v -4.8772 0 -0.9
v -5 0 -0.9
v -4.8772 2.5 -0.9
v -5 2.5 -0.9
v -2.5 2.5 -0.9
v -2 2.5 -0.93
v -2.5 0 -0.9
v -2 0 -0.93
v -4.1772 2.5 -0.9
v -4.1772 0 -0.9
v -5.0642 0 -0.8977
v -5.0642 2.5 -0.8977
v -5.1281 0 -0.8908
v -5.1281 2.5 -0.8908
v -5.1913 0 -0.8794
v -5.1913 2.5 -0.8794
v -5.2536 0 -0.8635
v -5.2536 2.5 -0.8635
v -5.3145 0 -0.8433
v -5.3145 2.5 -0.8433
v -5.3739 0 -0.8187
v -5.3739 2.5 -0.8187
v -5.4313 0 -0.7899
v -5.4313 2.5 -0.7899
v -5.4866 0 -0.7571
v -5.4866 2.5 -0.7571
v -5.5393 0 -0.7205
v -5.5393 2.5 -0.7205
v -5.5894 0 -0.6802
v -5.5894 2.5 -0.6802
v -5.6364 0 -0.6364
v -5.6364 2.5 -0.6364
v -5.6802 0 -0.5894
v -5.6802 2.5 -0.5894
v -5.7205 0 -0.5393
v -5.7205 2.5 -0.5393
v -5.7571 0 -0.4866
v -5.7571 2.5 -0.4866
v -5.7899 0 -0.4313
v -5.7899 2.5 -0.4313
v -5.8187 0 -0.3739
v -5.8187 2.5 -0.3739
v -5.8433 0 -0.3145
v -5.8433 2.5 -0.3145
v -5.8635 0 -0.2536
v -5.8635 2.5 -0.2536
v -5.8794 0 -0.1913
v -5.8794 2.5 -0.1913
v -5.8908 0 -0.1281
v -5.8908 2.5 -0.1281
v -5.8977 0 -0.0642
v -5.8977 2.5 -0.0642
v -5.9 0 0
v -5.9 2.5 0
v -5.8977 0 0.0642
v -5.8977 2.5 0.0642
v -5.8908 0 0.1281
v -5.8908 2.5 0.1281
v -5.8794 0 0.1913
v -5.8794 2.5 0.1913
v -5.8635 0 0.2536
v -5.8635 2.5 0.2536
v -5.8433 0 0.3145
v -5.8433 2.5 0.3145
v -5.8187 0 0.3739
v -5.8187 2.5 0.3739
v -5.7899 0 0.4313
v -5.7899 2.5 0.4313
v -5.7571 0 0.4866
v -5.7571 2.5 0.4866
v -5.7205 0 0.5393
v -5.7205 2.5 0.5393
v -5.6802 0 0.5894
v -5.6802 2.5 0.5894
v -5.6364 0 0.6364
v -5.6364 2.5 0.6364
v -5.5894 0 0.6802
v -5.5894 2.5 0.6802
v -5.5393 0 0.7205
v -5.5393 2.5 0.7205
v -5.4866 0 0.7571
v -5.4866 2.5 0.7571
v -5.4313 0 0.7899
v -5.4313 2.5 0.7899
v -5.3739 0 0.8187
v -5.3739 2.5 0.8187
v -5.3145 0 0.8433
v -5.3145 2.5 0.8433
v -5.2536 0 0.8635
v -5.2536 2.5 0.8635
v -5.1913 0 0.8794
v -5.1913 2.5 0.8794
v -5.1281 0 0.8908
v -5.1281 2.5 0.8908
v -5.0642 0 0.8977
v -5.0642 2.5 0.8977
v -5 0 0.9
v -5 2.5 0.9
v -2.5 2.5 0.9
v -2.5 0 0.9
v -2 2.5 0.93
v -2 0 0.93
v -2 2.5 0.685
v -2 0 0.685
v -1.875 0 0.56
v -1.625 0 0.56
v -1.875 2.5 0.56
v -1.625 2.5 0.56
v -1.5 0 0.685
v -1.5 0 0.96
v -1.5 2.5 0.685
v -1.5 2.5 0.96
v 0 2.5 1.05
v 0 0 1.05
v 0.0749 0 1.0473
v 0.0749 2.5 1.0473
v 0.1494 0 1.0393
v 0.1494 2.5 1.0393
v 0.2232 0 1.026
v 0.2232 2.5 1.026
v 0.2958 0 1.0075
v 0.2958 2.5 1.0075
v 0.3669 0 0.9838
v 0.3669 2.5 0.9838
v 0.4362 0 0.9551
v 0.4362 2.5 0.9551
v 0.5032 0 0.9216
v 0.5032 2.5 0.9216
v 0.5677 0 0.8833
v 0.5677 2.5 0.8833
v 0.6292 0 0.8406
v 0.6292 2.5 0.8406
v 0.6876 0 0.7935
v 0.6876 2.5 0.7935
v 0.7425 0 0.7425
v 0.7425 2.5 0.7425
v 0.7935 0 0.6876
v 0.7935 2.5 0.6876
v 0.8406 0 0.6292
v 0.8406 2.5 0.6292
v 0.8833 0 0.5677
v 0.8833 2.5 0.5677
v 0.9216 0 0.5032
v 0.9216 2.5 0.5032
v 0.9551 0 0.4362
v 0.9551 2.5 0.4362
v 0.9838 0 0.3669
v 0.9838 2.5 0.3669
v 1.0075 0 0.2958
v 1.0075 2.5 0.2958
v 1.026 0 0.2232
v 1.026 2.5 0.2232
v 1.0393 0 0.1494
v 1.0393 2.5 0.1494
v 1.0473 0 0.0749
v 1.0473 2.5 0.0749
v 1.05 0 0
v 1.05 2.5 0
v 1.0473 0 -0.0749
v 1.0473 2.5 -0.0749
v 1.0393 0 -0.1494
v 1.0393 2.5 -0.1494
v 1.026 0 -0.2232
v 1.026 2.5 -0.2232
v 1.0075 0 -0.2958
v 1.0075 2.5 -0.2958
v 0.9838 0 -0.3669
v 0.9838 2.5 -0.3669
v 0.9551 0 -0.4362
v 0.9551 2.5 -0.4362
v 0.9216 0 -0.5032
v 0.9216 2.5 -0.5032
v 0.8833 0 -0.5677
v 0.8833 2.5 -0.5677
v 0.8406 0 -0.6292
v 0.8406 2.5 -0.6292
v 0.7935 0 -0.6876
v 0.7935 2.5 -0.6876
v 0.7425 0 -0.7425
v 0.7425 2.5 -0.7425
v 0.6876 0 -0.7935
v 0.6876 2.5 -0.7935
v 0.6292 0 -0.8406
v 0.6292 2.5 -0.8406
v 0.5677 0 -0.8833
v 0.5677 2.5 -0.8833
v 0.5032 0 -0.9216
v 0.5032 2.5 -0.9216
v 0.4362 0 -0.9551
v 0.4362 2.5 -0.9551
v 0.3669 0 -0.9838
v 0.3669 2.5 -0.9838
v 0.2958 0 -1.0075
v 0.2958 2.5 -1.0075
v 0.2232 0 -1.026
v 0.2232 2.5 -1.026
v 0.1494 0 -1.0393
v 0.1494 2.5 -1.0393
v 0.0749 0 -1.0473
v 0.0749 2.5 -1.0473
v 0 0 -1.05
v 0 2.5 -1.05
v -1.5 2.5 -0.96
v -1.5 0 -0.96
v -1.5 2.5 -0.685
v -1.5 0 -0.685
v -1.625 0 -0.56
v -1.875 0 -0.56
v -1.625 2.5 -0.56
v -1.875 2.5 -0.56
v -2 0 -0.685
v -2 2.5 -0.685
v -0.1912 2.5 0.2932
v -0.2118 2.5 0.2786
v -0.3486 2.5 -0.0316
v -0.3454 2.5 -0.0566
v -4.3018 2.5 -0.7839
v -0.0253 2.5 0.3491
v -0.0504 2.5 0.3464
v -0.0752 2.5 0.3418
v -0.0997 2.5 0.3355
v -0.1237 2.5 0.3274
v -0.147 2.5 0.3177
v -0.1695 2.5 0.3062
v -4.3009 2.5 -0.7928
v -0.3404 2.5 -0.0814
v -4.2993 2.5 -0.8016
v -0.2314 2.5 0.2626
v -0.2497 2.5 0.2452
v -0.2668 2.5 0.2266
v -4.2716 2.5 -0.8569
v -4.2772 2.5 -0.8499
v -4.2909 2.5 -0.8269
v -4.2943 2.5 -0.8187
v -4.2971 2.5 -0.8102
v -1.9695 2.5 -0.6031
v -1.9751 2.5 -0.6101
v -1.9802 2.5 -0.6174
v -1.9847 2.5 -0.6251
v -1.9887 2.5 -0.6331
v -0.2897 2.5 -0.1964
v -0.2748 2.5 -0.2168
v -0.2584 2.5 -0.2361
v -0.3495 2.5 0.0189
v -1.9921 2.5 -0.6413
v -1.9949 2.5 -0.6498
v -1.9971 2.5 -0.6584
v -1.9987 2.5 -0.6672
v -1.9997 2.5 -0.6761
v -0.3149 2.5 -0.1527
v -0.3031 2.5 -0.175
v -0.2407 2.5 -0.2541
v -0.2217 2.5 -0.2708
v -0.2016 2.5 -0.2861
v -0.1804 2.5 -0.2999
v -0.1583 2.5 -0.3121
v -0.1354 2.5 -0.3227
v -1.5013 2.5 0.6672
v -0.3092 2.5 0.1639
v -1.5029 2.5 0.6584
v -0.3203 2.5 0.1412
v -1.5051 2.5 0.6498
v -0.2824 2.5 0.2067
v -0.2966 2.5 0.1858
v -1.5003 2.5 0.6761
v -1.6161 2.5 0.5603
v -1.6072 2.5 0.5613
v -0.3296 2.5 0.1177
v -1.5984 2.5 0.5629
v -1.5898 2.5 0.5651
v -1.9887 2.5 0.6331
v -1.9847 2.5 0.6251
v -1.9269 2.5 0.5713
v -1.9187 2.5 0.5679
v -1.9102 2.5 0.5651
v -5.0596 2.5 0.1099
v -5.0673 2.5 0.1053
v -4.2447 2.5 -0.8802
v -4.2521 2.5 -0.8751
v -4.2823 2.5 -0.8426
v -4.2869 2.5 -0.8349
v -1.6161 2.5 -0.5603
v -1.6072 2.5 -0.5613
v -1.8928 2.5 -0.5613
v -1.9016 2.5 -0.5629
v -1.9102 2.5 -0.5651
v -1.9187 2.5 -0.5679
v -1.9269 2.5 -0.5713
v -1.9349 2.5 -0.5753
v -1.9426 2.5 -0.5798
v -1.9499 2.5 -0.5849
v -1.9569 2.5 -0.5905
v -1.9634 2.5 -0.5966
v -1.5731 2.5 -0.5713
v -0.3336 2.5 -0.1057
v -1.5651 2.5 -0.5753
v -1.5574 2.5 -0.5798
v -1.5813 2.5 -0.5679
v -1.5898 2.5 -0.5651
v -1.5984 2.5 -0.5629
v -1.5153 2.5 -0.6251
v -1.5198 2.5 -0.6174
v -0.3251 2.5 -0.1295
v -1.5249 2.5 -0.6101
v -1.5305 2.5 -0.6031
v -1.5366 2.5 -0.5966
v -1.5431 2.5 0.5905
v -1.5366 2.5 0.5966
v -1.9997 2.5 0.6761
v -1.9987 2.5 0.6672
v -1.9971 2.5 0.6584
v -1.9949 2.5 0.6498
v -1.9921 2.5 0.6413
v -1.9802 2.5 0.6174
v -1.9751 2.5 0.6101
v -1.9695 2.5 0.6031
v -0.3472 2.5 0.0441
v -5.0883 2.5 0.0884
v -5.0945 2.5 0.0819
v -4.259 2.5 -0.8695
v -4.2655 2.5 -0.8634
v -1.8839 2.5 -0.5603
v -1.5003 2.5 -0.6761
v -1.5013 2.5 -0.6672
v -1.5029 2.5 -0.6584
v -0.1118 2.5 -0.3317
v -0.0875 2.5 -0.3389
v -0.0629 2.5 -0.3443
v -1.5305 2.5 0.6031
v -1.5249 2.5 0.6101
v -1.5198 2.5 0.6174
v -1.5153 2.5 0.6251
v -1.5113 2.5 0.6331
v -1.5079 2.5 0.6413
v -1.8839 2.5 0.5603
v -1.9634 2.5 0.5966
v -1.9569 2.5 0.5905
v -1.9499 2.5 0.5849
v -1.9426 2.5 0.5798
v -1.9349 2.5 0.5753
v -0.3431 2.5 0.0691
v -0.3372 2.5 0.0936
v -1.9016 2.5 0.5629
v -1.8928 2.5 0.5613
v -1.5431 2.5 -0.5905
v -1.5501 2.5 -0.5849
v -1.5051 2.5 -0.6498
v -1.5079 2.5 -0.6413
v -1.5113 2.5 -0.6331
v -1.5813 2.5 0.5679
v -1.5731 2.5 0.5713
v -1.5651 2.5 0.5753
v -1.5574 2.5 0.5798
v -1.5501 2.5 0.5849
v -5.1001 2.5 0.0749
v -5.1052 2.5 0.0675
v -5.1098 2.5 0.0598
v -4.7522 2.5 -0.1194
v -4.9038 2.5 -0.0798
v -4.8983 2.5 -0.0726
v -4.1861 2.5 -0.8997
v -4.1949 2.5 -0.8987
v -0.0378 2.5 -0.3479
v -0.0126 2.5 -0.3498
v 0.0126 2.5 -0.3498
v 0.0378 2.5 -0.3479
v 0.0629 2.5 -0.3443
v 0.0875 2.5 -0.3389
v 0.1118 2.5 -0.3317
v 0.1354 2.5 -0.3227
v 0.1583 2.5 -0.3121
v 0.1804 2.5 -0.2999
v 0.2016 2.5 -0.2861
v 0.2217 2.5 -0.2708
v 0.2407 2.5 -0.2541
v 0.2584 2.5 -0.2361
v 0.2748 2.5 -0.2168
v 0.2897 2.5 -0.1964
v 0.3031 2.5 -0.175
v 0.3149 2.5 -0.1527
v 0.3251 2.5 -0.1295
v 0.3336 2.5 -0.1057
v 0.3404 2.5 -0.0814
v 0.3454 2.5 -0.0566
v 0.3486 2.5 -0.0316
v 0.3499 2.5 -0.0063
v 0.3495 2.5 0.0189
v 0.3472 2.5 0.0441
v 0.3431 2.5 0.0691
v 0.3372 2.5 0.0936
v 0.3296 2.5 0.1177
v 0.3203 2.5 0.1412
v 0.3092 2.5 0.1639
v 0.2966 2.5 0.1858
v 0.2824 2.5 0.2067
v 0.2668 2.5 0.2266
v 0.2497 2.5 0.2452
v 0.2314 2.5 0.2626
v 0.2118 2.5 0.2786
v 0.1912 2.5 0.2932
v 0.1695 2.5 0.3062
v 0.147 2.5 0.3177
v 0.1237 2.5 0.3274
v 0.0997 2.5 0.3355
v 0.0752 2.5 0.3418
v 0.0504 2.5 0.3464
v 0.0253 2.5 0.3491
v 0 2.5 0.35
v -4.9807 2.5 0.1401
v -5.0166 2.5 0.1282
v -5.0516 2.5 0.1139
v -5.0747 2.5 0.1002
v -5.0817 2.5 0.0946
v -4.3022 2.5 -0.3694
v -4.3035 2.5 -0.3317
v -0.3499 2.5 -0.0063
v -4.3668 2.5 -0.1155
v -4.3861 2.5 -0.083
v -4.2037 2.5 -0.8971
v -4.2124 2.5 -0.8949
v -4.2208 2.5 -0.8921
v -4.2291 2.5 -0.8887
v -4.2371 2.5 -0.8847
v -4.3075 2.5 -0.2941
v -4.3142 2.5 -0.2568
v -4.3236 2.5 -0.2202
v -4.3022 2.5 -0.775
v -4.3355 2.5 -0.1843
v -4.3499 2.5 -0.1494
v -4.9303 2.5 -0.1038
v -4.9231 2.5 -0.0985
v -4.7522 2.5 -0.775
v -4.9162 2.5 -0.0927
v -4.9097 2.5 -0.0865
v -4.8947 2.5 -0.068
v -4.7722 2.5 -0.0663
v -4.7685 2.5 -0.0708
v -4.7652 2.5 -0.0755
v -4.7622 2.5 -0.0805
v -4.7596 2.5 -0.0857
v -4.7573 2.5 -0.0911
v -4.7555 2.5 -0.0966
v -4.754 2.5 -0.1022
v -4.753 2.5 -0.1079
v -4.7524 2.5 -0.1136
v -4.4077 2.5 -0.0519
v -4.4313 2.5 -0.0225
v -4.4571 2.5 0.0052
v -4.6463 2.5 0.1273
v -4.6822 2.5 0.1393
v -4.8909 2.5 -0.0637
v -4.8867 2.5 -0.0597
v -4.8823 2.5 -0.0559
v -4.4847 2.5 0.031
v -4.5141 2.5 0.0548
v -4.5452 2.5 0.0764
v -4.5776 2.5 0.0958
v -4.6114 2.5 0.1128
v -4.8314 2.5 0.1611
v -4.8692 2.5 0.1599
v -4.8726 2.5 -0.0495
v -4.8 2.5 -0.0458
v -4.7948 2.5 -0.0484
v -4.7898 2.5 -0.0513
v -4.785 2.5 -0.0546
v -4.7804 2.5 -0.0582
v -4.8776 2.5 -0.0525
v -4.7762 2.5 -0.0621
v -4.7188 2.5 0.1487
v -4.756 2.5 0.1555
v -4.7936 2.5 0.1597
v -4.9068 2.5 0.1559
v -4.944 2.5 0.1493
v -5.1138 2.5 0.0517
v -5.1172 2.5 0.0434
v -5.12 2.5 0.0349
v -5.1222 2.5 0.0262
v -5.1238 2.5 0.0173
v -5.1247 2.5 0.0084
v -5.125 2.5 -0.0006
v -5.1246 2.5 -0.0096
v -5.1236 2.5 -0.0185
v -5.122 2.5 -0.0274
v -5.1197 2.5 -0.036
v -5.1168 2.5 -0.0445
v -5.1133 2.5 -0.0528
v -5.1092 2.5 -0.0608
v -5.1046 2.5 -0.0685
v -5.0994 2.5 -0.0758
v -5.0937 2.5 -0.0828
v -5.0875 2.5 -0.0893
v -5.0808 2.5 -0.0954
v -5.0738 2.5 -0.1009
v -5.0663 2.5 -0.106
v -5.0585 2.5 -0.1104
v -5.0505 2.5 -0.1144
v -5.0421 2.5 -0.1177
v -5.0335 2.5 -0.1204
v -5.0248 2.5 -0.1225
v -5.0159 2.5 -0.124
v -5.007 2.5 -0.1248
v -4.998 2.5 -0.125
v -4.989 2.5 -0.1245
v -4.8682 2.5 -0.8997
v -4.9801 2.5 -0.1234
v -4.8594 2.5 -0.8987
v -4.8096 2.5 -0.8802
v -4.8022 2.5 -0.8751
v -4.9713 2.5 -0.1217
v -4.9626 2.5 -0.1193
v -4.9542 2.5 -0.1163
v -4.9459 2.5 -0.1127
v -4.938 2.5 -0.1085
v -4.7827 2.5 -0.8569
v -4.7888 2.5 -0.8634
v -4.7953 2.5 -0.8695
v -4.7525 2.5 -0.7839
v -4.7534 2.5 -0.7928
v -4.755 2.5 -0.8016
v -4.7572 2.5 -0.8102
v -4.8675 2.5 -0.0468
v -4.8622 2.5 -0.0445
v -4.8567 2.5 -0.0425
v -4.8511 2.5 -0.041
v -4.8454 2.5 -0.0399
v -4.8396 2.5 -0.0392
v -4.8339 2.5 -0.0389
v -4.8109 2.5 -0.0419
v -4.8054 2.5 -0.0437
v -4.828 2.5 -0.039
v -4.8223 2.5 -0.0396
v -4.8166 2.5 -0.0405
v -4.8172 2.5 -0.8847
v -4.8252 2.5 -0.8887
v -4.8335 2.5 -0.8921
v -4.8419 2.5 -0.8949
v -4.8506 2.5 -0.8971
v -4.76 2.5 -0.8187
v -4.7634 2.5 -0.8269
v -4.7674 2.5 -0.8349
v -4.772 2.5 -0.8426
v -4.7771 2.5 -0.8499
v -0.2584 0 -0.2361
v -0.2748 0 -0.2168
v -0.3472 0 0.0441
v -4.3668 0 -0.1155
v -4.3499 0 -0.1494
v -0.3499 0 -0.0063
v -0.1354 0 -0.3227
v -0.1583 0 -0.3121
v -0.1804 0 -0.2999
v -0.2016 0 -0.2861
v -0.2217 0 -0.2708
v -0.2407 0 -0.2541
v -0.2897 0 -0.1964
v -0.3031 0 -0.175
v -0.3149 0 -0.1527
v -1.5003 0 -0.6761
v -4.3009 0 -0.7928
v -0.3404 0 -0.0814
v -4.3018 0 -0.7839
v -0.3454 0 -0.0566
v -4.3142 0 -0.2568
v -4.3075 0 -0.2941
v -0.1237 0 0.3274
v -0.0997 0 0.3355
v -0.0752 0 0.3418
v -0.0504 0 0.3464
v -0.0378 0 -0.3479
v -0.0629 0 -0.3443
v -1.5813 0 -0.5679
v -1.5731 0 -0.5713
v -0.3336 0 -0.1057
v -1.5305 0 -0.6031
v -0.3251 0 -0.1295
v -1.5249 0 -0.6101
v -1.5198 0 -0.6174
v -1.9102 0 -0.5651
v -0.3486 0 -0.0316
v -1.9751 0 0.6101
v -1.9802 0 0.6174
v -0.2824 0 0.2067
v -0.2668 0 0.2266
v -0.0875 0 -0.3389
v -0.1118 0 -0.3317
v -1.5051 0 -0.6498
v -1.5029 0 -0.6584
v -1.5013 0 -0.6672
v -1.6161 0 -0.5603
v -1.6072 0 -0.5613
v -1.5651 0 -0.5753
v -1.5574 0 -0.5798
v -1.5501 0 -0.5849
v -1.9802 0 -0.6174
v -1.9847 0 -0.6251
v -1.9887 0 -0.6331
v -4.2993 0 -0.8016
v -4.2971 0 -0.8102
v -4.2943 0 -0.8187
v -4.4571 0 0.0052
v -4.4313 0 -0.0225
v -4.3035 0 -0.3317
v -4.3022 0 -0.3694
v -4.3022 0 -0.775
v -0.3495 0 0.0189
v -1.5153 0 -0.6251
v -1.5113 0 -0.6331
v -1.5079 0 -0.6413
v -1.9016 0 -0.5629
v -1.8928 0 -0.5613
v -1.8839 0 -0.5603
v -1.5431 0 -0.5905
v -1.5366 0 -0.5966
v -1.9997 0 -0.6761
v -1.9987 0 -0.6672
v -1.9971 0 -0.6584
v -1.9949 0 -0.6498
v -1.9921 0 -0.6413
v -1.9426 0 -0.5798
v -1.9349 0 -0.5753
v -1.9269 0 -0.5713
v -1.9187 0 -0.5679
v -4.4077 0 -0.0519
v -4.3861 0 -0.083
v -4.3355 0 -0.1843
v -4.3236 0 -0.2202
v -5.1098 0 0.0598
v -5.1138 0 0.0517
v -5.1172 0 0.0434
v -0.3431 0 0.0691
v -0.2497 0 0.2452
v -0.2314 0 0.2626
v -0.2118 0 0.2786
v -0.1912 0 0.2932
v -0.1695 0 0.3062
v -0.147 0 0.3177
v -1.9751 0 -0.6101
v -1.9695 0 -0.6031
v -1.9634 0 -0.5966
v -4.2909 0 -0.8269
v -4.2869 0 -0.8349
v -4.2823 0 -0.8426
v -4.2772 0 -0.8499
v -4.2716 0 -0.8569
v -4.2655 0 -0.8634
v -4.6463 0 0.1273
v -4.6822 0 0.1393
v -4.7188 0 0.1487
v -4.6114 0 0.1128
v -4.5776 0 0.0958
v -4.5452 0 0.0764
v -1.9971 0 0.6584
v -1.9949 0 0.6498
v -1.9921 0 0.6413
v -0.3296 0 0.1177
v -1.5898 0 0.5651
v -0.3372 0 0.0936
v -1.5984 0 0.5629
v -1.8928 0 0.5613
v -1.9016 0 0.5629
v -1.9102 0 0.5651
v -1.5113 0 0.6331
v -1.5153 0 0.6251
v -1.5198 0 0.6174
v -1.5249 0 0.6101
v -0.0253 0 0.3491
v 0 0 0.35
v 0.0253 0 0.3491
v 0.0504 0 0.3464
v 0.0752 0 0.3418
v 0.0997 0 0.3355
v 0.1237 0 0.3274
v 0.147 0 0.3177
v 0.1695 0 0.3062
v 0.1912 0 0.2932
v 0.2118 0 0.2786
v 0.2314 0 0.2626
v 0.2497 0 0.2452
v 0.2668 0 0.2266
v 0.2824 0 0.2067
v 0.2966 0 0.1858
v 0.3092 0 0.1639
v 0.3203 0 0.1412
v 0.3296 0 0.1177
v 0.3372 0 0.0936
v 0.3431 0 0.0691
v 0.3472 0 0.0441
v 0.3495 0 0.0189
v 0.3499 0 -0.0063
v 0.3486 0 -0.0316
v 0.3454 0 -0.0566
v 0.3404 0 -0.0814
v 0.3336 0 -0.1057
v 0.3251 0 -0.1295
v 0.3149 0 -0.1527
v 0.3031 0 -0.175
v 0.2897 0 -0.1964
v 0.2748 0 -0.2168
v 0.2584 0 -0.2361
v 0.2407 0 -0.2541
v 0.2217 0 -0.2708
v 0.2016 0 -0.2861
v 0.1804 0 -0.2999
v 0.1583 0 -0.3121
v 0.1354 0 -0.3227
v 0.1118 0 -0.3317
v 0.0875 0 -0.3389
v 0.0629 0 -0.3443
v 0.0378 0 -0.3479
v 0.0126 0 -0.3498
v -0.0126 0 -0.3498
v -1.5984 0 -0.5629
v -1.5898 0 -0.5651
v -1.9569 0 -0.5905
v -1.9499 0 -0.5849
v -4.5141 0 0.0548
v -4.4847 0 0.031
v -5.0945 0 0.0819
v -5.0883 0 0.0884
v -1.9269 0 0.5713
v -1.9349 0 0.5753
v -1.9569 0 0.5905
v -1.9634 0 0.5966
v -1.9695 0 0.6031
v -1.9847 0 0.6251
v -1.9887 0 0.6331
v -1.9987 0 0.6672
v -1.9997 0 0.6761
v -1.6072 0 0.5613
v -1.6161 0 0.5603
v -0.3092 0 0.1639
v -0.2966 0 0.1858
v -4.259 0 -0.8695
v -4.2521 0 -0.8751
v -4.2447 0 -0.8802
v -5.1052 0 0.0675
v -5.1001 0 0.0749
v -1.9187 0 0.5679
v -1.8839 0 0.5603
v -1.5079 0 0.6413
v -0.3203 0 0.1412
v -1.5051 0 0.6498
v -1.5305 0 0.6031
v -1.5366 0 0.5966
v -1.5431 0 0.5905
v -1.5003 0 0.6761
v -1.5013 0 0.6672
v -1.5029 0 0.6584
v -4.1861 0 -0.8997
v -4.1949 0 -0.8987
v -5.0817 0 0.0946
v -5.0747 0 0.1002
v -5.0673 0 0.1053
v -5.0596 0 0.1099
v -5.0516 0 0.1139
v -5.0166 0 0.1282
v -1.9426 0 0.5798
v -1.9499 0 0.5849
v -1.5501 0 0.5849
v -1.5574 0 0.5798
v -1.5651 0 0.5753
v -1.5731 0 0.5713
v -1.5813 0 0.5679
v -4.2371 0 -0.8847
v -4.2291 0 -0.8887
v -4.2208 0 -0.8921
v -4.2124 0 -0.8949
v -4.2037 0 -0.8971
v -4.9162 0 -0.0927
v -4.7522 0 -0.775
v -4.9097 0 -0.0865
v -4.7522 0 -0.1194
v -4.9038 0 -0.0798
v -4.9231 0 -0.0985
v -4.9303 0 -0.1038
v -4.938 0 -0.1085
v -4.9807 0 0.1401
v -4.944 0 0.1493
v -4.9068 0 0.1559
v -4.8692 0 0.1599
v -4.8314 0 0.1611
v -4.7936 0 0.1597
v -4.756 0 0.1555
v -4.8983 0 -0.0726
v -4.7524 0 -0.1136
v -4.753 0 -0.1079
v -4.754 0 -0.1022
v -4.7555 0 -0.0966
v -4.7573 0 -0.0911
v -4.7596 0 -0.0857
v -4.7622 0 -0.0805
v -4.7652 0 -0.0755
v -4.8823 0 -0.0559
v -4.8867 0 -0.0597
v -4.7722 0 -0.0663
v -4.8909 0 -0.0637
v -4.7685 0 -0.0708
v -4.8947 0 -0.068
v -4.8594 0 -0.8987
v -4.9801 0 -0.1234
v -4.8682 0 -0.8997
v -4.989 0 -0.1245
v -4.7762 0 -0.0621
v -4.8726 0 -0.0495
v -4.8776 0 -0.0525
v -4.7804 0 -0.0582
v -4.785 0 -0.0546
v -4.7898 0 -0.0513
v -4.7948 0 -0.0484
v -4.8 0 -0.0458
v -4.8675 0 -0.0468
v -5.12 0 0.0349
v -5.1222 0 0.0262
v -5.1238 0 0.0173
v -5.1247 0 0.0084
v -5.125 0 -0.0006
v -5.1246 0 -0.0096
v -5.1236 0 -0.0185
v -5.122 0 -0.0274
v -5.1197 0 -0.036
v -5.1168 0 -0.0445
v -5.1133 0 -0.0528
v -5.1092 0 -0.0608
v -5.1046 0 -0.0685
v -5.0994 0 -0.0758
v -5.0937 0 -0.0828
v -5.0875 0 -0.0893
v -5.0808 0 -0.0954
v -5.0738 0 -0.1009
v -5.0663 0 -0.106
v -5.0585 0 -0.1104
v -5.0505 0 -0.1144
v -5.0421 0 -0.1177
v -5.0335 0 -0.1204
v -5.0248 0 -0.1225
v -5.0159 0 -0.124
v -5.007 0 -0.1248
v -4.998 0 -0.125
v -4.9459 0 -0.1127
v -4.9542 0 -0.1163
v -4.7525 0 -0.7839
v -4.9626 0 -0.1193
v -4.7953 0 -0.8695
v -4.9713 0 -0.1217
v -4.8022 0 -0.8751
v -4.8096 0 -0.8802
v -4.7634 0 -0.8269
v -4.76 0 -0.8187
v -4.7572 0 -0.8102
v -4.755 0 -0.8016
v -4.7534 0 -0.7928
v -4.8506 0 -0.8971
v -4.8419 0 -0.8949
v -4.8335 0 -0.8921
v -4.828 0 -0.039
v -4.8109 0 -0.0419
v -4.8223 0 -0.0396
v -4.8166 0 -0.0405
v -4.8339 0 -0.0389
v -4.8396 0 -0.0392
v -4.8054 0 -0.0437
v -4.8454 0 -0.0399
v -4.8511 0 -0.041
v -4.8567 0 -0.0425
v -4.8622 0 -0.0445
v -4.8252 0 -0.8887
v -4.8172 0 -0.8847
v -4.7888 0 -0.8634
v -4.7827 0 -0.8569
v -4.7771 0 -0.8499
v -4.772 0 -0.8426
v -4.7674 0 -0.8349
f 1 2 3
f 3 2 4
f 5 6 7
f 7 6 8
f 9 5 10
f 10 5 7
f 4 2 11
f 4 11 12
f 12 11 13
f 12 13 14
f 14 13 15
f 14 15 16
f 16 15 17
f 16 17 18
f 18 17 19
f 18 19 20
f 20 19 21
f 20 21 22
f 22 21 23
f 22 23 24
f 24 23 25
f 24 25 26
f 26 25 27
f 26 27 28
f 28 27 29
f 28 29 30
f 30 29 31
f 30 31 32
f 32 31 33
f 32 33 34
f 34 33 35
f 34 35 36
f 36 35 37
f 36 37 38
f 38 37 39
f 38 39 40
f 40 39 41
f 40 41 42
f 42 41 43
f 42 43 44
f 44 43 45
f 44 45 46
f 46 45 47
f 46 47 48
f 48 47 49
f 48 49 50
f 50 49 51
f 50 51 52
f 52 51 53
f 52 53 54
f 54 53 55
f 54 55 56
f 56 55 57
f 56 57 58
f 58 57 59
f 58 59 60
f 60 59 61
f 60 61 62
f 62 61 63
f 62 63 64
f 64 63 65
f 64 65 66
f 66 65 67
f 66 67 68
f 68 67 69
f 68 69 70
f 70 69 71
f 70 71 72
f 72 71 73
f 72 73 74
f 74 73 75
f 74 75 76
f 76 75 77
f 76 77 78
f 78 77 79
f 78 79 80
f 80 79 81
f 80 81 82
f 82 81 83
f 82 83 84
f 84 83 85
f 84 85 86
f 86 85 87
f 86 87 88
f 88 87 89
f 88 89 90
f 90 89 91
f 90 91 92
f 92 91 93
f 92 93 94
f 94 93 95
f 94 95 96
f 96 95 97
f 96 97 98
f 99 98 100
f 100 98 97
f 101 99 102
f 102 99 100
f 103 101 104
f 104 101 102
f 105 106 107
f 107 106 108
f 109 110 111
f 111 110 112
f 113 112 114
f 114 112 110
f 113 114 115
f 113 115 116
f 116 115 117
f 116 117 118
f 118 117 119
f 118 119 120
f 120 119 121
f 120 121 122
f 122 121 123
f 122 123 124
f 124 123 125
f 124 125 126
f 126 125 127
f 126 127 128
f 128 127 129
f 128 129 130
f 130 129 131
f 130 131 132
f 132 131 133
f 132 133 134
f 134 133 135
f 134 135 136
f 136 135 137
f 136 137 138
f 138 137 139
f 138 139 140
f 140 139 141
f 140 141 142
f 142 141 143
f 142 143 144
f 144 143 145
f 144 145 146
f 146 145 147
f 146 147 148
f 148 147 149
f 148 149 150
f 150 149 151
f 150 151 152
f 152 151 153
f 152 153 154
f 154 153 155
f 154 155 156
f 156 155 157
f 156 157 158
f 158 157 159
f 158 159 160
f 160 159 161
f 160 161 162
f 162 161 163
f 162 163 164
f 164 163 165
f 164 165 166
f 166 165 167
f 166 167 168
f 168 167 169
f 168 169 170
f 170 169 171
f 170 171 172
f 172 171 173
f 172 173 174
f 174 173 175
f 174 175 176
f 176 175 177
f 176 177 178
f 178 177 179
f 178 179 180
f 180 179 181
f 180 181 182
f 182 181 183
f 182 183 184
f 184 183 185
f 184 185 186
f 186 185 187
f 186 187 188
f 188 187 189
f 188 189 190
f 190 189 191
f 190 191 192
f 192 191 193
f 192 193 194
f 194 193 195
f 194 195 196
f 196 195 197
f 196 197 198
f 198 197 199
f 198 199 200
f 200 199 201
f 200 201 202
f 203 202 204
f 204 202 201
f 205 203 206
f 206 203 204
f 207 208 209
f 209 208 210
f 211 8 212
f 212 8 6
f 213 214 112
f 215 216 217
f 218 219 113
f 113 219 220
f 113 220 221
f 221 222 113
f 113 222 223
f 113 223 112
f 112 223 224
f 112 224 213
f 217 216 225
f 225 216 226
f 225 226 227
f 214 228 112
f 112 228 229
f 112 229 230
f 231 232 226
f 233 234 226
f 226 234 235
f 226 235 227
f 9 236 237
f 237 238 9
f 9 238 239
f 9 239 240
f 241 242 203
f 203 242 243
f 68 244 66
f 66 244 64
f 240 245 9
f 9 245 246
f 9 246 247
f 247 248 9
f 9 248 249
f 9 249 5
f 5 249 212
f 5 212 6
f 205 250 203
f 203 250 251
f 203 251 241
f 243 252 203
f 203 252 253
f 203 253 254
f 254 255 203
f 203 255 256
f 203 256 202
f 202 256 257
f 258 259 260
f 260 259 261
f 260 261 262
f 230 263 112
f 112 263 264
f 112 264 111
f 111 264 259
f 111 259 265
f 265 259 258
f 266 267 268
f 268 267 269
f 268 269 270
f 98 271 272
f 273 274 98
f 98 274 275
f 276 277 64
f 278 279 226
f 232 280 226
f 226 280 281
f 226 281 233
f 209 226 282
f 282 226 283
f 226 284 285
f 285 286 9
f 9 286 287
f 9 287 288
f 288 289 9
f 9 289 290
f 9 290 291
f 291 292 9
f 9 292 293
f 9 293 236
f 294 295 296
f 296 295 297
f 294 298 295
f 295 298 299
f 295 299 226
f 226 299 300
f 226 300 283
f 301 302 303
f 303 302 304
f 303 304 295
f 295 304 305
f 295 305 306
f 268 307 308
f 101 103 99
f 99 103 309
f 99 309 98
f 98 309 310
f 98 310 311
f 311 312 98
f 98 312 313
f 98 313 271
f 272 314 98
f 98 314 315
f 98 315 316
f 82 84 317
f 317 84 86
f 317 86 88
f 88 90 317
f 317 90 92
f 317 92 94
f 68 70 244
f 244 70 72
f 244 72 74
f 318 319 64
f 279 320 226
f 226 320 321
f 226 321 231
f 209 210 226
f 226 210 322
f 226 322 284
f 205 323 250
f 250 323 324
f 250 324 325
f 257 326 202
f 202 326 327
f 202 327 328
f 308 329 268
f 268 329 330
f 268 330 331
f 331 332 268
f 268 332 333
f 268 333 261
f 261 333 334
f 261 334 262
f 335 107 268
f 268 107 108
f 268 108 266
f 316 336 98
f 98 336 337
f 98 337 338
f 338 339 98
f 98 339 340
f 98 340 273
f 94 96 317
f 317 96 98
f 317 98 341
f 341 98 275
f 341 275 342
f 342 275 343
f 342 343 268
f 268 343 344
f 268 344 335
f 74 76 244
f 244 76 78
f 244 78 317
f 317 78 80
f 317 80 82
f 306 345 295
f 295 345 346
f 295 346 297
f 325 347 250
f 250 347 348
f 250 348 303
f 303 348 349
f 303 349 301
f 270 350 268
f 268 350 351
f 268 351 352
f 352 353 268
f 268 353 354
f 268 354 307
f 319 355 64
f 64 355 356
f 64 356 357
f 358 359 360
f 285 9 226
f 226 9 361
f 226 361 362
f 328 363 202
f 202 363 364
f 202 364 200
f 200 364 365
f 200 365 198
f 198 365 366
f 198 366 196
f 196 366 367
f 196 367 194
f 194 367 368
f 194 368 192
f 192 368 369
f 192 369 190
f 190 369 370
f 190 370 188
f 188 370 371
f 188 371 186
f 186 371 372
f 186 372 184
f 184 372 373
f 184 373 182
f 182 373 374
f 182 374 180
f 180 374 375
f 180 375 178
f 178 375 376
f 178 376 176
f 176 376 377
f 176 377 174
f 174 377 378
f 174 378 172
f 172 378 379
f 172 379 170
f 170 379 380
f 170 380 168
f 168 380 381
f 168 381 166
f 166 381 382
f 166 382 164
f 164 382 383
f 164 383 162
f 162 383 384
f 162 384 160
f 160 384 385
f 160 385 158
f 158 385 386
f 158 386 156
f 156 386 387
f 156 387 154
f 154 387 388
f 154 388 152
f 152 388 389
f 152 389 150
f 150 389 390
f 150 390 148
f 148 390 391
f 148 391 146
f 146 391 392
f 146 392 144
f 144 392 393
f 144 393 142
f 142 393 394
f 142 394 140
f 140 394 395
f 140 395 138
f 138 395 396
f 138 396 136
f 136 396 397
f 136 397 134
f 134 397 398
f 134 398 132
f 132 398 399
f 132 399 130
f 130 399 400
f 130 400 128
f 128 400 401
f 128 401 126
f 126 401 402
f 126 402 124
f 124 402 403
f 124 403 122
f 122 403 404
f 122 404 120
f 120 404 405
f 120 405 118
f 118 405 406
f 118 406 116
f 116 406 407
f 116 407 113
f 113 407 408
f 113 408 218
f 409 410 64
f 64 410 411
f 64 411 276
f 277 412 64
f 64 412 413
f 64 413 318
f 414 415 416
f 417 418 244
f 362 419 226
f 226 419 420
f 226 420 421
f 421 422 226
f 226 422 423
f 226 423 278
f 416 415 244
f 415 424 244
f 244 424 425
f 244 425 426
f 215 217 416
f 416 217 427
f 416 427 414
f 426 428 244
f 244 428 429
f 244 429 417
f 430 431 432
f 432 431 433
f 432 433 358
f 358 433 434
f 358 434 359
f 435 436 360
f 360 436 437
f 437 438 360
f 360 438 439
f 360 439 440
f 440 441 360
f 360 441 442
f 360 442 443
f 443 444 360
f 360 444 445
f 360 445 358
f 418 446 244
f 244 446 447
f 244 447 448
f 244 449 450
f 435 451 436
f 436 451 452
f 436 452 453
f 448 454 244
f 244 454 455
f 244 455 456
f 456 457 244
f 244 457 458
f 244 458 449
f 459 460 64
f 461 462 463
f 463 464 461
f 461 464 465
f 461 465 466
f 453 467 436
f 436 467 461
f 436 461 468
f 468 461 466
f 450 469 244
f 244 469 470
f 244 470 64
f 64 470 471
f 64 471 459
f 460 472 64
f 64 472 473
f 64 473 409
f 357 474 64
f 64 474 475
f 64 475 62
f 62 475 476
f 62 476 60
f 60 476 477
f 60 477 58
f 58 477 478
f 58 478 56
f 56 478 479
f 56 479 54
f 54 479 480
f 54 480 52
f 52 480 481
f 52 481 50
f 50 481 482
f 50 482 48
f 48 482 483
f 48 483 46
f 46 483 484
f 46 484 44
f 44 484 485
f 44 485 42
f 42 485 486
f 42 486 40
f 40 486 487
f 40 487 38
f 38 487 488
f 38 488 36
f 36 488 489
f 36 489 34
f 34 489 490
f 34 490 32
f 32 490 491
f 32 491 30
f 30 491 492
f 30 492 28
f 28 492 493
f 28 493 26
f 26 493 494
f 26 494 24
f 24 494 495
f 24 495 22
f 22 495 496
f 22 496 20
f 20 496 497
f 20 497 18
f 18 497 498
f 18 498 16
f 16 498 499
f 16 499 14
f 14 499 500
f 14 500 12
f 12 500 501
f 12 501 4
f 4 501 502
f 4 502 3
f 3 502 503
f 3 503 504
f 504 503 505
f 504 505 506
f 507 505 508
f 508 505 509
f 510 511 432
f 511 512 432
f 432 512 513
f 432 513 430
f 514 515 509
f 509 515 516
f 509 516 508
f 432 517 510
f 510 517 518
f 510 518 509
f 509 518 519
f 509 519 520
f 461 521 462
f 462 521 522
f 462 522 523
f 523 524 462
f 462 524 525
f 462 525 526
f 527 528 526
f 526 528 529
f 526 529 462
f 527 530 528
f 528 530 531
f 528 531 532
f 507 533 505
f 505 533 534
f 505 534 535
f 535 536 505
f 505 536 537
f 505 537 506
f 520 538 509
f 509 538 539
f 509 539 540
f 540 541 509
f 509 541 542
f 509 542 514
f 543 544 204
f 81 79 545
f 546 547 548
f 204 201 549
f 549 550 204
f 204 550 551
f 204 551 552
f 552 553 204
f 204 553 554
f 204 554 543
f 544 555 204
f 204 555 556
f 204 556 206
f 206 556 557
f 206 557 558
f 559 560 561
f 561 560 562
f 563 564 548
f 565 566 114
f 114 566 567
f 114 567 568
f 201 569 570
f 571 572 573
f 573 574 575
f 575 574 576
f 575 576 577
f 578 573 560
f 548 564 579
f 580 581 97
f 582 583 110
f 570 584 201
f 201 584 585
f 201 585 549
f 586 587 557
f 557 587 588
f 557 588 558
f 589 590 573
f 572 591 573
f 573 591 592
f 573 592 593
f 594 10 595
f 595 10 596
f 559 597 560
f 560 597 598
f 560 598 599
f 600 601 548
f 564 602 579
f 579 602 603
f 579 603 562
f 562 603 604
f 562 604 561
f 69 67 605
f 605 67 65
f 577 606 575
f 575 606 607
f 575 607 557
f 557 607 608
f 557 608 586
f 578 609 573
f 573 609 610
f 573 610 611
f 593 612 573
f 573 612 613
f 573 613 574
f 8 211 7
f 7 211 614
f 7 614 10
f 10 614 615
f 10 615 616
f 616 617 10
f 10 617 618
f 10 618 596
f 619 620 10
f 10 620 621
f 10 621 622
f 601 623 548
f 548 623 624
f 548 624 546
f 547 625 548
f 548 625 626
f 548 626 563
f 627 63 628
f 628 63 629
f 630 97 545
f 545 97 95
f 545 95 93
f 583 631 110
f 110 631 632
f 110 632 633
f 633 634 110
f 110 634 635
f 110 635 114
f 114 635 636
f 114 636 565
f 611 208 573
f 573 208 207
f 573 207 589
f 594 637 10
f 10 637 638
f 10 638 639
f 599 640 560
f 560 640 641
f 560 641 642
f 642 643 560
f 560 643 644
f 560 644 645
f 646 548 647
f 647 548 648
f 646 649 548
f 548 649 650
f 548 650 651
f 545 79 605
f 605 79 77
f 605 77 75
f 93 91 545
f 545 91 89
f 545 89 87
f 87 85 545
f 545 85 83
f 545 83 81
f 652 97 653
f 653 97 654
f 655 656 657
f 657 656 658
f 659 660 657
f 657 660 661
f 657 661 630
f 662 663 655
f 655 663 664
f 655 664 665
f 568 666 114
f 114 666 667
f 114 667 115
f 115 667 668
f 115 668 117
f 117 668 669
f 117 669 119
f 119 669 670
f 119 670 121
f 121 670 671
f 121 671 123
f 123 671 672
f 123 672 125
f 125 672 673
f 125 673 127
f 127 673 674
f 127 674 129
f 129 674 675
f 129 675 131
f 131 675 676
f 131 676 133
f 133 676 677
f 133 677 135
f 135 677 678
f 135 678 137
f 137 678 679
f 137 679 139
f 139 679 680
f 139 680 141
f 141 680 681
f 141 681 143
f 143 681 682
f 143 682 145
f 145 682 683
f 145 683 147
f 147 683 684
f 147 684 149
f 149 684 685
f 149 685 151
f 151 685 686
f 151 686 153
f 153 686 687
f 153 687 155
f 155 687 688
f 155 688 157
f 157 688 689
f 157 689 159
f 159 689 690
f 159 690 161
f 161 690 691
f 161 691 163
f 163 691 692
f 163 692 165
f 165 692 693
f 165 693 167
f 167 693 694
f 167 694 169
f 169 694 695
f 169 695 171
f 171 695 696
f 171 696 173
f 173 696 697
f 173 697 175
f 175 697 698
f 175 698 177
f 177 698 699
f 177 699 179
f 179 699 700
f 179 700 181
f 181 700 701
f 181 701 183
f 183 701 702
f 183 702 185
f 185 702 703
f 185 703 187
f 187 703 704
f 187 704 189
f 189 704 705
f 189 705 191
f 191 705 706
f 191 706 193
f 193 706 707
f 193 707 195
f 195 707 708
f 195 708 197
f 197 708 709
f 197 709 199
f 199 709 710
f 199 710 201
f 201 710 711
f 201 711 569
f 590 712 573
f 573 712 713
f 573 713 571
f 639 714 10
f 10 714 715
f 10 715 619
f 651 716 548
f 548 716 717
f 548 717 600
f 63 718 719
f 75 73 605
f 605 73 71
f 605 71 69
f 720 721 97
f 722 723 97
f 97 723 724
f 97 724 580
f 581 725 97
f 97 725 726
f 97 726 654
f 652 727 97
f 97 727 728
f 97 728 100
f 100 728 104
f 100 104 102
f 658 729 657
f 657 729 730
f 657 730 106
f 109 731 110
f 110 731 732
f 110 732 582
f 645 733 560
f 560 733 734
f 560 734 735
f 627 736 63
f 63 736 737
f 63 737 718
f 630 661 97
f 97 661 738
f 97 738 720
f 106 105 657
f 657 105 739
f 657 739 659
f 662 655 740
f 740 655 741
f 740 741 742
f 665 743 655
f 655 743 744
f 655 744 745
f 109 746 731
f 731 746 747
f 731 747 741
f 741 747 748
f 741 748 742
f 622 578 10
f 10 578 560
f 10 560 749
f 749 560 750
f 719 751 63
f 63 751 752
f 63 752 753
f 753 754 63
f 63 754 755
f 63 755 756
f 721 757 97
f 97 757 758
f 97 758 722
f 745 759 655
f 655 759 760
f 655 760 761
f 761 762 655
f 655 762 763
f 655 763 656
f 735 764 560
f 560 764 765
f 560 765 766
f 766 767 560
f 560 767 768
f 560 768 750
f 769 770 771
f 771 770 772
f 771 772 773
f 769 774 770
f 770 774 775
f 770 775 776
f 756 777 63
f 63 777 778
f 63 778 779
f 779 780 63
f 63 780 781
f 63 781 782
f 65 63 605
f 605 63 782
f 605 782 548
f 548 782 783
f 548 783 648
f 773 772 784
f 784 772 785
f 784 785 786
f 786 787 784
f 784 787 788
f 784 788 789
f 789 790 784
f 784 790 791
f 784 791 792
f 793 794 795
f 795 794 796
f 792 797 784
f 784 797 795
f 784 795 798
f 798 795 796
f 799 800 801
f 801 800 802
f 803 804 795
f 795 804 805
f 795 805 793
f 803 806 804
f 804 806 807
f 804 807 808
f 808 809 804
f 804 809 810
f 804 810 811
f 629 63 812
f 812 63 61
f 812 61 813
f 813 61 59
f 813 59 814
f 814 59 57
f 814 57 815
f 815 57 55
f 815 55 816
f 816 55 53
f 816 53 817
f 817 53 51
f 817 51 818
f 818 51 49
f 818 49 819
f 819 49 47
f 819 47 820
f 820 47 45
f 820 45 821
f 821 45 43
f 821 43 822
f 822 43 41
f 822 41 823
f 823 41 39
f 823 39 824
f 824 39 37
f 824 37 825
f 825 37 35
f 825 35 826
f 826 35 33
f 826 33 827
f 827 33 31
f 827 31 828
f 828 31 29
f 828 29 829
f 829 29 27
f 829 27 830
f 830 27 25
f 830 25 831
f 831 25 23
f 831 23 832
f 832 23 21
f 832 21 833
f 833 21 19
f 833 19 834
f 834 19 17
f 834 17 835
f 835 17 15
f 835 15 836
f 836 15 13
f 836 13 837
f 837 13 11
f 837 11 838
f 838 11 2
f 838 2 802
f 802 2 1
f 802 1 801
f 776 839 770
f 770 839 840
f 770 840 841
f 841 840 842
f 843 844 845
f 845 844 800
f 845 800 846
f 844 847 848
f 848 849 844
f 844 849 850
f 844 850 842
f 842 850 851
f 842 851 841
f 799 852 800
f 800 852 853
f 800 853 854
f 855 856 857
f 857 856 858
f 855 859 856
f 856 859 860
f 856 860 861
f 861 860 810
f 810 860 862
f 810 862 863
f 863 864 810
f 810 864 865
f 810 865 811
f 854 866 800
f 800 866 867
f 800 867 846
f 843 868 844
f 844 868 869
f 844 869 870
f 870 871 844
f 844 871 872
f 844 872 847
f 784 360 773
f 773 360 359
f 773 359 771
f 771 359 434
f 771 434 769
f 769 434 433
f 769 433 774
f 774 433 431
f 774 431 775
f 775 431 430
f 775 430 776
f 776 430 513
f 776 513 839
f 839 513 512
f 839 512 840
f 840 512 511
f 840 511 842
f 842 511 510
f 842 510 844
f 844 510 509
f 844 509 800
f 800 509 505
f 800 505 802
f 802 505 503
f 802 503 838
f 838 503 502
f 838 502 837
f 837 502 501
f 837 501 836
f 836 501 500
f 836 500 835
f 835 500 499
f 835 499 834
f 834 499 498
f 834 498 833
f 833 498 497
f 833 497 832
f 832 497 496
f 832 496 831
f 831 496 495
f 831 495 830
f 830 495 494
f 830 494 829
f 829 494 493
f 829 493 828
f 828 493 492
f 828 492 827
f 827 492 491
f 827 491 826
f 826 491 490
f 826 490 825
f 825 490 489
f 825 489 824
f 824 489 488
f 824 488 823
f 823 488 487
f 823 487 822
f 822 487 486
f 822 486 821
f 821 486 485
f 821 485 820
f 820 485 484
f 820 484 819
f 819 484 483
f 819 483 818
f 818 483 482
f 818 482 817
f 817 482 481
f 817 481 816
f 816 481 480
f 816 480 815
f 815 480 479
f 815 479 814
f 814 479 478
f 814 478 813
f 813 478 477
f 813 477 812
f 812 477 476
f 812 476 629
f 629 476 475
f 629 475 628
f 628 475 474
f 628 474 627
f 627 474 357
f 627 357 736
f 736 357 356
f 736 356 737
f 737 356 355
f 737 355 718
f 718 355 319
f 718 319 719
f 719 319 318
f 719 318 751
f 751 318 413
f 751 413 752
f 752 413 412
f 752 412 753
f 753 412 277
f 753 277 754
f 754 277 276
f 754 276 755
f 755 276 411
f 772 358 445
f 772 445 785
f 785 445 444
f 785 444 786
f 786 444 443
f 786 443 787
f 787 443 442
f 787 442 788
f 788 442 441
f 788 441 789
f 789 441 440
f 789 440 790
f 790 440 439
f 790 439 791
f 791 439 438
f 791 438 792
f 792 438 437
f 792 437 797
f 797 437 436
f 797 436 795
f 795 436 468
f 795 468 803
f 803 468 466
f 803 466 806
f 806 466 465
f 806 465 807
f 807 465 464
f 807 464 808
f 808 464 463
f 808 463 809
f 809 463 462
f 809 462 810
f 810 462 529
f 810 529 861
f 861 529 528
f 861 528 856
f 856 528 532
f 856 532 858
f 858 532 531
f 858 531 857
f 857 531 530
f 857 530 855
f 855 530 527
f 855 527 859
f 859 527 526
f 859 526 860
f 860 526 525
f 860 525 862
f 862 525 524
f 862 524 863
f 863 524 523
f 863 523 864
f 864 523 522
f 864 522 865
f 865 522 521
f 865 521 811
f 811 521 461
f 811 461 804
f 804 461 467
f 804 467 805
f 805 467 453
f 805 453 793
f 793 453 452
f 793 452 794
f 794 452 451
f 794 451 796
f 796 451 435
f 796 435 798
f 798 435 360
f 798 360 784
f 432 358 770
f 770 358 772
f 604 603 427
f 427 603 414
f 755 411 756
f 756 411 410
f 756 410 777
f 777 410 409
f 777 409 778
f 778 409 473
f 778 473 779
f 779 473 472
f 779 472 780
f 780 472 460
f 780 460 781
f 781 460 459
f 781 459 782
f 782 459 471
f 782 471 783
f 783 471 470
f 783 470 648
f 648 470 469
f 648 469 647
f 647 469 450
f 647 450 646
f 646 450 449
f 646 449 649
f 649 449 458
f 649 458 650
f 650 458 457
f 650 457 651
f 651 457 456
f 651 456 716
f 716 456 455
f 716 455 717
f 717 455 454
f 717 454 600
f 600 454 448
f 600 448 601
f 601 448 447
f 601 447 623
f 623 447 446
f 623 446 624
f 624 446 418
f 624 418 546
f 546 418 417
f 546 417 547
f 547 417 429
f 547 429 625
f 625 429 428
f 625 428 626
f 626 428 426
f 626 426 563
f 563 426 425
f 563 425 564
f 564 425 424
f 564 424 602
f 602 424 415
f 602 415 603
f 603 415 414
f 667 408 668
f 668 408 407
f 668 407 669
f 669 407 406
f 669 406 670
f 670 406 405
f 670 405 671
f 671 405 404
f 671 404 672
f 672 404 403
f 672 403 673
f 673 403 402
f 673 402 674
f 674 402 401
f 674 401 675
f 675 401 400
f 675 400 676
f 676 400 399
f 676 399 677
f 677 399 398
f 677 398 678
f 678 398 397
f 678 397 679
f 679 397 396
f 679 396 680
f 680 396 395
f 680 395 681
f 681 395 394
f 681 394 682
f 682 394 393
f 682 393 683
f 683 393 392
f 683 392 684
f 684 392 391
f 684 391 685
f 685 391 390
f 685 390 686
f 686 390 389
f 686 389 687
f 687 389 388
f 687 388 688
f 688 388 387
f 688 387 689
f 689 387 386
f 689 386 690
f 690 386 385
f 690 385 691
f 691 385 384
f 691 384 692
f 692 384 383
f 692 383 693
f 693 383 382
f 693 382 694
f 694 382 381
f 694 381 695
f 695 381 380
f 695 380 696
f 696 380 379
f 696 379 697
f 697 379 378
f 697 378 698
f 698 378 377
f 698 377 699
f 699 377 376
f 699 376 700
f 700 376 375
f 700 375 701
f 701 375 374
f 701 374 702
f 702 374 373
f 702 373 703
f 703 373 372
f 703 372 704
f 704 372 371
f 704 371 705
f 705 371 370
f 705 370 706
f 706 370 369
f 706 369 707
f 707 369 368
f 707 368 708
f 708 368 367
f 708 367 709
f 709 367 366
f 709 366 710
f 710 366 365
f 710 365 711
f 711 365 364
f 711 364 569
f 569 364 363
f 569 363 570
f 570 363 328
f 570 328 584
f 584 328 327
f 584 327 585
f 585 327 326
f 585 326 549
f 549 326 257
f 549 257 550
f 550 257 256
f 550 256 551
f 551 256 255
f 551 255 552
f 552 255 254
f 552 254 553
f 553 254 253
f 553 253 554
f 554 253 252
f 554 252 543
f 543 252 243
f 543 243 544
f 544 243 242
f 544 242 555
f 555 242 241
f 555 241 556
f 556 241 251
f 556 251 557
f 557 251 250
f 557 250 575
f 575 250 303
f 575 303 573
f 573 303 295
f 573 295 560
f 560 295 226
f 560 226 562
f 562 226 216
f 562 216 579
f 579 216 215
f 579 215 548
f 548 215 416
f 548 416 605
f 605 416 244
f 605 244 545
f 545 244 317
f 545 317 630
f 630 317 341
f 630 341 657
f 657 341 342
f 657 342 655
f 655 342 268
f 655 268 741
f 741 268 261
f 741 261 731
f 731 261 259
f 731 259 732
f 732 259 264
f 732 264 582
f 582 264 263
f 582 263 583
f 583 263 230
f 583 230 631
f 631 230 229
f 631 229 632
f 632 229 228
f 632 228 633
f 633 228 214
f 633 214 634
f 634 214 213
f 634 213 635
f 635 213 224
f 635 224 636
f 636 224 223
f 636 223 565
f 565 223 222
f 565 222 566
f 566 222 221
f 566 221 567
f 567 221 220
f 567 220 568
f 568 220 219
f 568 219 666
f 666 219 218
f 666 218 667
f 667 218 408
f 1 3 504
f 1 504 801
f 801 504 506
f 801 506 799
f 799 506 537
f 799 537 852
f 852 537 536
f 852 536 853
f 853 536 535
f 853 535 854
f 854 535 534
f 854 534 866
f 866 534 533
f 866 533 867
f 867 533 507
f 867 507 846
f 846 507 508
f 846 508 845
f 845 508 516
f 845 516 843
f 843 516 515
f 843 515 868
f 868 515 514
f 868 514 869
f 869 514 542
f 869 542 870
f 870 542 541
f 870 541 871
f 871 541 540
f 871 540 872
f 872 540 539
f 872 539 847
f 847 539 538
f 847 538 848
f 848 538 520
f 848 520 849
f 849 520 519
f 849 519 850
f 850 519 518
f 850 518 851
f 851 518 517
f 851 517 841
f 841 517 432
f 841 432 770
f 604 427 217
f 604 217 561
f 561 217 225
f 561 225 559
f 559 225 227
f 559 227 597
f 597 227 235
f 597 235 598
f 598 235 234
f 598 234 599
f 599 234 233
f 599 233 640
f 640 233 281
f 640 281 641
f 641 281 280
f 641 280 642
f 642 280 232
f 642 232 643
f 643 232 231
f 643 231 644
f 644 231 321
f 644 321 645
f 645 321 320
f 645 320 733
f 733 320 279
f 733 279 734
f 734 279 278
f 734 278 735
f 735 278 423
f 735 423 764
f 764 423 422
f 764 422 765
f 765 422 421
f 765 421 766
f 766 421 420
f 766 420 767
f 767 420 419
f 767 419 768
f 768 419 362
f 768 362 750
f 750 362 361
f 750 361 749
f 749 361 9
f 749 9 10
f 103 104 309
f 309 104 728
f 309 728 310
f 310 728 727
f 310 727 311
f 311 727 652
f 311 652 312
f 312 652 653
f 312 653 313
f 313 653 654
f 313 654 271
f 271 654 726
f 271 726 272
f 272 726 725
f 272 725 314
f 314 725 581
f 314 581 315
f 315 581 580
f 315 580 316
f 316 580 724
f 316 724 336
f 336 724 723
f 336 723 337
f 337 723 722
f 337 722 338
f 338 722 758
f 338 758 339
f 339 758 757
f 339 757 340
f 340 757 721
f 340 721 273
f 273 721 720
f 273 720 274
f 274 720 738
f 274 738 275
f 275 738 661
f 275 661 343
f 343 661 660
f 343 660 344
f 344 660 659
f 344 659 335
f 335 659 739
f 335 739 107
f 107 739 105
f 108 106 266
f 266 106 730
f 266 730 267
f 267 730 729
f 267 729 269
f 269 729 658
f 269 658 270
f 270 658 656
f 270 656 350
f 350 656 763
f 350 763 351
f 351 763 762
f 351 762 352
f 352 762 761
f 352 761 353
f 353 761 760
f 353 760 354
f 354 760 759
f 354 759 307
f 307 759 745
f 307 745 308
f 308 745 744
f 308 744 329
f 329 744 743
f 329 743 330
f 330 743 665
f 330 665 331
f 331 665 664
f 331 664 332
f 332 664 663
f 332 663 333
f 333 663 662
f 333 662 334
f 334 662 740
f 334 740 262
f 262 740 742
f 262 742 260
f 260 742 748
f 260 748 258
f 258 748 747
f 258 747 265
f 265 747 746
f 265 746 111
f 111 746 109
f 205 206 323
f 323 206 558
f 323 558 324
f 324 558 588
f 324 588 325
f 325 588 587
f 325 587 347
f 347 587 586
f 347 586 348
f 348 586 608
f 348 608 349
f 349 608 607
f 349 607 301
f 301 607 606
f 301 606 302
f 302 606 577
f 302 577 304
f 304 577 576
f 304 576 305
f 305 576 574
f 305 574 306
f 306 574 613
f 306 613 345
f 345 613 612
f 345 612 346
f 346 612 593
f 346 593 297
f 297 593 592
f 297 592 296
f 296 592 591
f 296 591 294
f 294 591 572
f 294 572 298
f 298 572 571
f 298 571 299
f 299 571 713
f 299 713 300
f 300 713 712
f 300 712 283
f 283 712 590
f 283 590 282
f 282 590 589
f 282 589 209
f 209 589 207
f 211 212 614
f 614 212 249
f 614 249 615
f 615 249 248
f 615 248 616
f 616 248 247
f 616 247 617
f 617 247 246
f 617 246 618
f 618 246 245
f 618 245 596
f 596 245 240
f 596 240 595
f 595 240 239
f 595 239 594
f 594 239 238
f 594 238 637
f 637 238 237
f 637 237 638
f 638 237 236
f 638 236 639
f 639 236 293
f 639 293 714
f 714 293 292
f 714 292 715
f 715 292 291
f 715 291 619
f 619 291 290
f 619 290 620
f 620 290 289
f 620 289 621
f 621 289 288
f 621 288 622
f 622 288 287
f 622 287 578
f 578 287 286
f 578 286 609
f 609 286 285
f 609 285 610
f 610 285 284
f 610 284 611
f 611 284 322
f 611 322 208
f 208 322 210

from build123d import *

# Parameters (mm, degrees)
BOSS_EXTRUDE1_DEPTH = 2.5
SKETCH4_R           = 0.35
THROUGH_HOLES_DEPTH = 7.493265742
FILLET1_R           = 0.125


with BuildPart() as part:
    # Sketch3 → Boss-Extrude1 (new body)
    with BuildSketch(Plane(origin=(0, 0, 0), x_dir=(1, 0, 0), z_dir=(0, 1, 0))):
        with BuildLine():
            Line((-2.5, 0.9), (-2, 0.93))
            Line((-2, 0.93), (-2, 0.56))
            Line((-2, 0.56), (-1.5, 0.56))
            Line((-1.5, 0.56), (-1.5, 0.96))
            Line((-1.5, 0.96), (0, 1.05))
            ThreePointArc((0, 1.05), (1.05, 0), (0, -1.05))
            Line((0, -1.05), (-1.5, -0.96))
            Line((-1.5, -0.96), (-1.5, -0.56))
            Line((-1.5, -0.56), (-2, -0.56))
            Line((-2, -0.56), (-2, -0.93))
            Line((-2, -0.93), (-2.5, -0.9))
            Line((-2.5, -0.9), (-5, -0.9))
            ThreePointArc((-5, -0.9), (-5.9, 0), (-5, 0.9))
            Line((-5, 0.9), (-2.5, 0.9))
        make_face()
    extrude(amount=BOSS_EXTRUDE1_DEPTH)

    # Sketch4 → Through Holes (cut, through all)
    with BuildSketch(Plane(origin=(0, 2.5, 0), x_dir=(1, 0, 0), z_dir=(0, 1, 0))):
        with Locations(Location((0, 0, 0), (0, 0, 270))):
            Circle(SKETCH4_R)
        with BuildLine():
            Line((-4.752153945, 0.9), (-4.302153945, 0.9))
            Line((-4.302153945, 0.9), (-4.302153945, 0.369444444))
            ThreePointArc((-4.302153945, 0.369444444), (-4.545154537, -0.076426995), (-5.05156214, -0.113869863))
            ThreePointArc((-5.05156214, -0.113869863), (-5.096567334, 0.079370965), (-4.898269291, 0.072635135))
            ThreePointArc((-4.898269291, 0.072635135), (-4.808133169, 0.042729378), (-4.752153945, 0.119444444))
            Line((-4.752153945, 0.119444444), (-4.752153945, 0.9))
        make_face()
    extrude(amount=-THROUGH_HOLES_DEPTH, mode=Mode.SUBTRACT)

    # Fillet1
    fillet1_edges = [part.edges().sort_by_distance(p)[0] for p in [
        (-2, 1.25, 0.56),
        (-1.5, 1.25, 0.56),
        (-1.5, 1.25, -0.56),
        (-2, 1.25, -0.56),
        (-4.752153945, 1.25, -0.9),
        (-4.302153945, 1.25, -0.9),
    ]]
    fillet(fillet1_edges, radius=FILLET1_R)


solid = part.part
